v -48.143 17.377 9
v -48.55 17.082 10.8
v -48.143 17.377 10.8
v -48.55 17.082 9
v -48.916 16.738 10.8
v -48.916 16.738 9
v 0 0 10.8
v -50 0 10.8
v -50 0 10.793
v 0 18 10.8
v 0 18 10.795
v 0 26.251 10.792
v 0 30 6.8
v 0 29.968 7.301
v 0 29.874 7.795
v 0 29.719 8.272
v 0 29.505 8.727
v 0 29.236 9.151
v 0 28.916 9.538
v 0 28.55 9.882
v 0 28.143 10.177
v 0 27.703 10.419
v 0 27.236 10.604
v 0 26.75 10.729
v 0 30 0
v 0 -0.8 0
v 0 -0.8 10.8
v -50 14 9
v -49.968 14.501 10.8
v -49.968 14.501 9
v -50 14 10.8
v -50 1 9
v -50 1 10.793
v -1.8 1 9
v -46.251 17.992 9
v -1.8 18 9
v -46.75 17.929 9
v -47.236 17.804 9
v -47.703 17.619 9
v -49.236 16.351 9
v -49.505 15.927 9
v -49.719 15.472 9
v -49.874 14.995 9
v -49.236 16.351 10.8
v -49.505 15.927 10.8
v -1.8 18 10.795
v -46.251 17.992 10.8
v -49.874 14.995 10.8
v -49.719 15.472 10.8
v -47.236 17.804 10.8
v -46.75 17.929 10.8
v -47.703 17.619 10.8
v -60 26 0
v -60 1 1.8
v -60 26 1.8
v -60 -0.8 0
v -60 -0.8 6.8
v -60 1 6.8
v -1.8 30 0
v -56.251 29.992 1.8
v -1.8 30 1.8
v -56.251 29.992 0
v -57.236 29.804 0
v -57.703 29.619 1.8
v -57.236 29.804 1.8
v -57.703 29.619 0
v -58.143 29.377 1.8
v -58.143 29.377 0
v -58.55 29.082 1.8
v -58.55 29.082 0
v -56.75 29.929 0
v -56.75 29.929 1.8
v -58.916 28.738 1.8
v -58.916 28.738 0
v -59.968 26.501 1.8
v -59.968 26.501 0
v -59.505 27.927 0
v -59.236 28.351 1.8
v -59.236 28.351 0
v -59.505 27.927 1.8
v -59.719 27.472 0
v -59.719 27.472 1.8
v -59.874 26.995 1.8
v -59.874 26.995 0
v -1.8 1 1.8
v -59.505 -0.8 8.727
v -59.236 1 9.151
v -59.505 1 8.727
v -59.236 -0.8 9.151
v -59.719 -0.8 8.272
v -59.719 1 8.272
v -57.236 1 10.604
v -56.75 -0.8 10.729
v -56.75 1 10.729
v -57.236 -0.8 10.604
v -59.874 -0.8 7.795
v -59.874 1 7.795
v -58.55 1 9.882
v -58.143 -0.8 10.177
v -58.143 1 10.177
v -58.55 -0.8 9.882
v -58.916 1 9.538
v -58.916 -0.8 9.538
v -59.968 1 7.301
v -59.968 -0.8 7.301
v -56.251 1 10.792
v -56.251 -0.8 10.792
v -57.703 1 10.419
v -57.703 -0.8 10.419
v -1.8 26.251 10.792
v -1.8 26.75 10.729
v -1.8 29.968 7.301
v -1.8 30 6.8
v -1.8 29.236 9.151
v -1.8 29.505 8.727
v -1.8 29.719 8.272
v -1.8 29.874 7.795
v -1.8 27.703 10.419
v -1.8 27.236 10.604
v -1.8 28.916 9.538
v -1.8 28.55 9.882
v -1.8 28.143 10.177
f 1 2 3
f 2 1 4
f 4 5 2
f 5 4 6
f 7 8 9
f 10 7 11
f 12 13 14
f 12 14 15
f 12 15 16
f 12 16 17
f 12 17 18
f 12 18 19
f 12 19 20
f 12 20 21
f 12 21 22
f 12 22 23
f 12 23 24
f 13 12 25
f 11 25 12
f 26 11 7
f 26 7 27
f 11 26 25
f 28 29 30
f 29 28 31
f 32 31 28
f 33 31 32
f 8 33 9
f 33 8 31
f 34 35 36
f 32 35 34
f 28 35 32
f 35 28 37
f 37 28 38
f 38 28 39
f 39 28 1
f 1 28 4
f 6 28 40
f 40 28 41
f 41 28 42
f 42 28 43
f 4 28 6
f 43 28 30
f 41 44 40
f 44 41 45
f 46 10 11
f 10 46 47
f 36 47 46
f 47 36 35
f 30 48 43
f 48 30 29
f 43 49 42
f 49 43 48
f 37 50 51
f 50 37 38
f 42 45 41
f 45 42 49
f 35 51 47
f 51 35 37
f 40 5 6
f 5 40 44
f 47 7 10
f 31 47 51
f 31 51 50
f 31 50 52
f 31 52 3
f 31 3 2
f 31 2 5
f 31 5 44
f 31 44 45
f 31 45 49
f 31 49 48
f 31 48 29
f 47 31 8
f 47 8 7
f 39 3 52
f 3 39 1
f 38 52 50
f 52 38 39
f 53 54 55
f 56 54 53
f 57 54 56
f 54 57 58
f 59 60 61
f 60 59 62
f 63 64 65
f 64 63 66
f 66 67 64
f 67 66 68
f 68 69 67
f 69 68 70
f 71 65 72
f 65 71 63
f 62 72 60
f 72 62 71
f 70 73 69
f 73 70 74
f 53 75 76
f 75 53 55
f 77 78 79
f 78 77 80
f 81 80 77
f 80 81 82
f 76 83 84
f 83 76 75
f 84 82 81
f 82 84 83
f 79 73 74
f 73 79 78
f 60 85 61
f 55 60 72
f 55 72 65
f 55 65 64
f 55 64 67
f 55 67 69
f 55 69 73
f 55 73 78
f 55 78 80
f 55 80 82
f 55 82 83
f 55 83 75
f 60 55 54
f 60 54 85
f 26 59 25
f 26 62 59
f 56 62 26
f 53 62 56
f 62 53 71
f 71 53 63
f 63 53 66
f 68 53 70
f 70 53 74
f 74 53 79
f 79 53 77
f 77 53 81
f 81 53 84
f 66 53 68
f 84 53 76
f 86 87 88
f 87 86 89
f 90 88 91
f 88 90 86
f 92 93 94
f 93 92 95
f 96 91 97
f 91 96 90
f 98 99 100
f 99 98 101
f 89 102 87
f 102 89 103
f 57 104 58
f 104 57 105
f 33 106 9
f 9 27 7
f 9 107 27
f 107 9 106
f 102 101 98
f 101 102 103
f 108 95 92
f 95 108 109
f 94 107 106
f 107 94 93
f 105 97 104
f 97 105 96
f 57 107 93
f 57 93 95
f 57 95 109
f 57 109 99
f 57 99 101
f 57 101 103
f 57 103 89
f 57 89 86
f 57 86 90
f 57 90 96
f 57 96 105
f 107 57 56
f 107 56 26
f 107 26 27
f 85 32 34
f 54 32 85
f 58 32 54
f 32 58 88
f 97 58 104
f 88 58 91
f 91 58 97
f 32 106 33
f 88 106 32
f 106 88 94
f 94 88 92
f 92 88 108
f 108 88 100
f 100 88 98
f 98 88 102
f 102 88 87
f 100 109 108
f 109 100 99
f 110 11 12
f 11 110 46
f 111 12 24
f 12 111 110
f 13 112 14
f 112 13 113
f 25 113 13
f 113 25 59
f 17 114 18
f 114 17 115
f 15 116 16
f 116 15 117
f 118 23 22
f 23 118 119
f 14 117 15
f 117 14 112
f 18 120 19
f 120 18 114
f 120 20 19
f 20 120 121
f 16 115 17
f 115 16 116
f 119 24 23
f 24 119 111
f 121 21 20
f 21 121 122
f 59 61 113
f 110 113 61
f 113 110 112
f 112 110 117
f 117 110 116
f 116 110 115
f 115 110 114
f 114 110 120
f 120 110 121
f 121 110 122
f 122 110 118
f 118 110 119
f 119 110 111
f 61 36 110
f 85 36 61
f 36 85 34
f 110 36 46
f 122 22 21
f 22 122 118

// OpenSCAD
x_f=15;
x_b=30;
h=50;
z=18;
t=1.8;
r=4;

module owall(t=2,x=50,y=18,r=3,fn=50) {
    linear_extrude(t)
    hull() {
        polygon(points = [[0,0],[x,0],[0,y]]);
        translate([x-r,y-r,0]) circle(r=r, $fn=fn);
    }
}

module cwall(t=2,x=50,y=10,r=3,fn=50) {
    linear_extrude(t)
    difference() {
        polygon(points = [[0,0],[x,0],[x,y],[0,y]]);
        translate([x,r+t])
            circle(r=r, $fn=fn);
        translate([x-r,r+t])
            square([20,20]);
    }
}

mirror([1,0,0])
difference() {
    union() {
        translate([0,0,7+t+0.2]) owall(t,50,18,r);
        owall(t,60,30,r);
        translate([0,1,0]) rotate([90,0,0]) owall(t,60,7+t+t+0.2,r);
        rotate([90,0,-90+180]) owall(t,30,7+t+t+0.2,r);
    }
}
